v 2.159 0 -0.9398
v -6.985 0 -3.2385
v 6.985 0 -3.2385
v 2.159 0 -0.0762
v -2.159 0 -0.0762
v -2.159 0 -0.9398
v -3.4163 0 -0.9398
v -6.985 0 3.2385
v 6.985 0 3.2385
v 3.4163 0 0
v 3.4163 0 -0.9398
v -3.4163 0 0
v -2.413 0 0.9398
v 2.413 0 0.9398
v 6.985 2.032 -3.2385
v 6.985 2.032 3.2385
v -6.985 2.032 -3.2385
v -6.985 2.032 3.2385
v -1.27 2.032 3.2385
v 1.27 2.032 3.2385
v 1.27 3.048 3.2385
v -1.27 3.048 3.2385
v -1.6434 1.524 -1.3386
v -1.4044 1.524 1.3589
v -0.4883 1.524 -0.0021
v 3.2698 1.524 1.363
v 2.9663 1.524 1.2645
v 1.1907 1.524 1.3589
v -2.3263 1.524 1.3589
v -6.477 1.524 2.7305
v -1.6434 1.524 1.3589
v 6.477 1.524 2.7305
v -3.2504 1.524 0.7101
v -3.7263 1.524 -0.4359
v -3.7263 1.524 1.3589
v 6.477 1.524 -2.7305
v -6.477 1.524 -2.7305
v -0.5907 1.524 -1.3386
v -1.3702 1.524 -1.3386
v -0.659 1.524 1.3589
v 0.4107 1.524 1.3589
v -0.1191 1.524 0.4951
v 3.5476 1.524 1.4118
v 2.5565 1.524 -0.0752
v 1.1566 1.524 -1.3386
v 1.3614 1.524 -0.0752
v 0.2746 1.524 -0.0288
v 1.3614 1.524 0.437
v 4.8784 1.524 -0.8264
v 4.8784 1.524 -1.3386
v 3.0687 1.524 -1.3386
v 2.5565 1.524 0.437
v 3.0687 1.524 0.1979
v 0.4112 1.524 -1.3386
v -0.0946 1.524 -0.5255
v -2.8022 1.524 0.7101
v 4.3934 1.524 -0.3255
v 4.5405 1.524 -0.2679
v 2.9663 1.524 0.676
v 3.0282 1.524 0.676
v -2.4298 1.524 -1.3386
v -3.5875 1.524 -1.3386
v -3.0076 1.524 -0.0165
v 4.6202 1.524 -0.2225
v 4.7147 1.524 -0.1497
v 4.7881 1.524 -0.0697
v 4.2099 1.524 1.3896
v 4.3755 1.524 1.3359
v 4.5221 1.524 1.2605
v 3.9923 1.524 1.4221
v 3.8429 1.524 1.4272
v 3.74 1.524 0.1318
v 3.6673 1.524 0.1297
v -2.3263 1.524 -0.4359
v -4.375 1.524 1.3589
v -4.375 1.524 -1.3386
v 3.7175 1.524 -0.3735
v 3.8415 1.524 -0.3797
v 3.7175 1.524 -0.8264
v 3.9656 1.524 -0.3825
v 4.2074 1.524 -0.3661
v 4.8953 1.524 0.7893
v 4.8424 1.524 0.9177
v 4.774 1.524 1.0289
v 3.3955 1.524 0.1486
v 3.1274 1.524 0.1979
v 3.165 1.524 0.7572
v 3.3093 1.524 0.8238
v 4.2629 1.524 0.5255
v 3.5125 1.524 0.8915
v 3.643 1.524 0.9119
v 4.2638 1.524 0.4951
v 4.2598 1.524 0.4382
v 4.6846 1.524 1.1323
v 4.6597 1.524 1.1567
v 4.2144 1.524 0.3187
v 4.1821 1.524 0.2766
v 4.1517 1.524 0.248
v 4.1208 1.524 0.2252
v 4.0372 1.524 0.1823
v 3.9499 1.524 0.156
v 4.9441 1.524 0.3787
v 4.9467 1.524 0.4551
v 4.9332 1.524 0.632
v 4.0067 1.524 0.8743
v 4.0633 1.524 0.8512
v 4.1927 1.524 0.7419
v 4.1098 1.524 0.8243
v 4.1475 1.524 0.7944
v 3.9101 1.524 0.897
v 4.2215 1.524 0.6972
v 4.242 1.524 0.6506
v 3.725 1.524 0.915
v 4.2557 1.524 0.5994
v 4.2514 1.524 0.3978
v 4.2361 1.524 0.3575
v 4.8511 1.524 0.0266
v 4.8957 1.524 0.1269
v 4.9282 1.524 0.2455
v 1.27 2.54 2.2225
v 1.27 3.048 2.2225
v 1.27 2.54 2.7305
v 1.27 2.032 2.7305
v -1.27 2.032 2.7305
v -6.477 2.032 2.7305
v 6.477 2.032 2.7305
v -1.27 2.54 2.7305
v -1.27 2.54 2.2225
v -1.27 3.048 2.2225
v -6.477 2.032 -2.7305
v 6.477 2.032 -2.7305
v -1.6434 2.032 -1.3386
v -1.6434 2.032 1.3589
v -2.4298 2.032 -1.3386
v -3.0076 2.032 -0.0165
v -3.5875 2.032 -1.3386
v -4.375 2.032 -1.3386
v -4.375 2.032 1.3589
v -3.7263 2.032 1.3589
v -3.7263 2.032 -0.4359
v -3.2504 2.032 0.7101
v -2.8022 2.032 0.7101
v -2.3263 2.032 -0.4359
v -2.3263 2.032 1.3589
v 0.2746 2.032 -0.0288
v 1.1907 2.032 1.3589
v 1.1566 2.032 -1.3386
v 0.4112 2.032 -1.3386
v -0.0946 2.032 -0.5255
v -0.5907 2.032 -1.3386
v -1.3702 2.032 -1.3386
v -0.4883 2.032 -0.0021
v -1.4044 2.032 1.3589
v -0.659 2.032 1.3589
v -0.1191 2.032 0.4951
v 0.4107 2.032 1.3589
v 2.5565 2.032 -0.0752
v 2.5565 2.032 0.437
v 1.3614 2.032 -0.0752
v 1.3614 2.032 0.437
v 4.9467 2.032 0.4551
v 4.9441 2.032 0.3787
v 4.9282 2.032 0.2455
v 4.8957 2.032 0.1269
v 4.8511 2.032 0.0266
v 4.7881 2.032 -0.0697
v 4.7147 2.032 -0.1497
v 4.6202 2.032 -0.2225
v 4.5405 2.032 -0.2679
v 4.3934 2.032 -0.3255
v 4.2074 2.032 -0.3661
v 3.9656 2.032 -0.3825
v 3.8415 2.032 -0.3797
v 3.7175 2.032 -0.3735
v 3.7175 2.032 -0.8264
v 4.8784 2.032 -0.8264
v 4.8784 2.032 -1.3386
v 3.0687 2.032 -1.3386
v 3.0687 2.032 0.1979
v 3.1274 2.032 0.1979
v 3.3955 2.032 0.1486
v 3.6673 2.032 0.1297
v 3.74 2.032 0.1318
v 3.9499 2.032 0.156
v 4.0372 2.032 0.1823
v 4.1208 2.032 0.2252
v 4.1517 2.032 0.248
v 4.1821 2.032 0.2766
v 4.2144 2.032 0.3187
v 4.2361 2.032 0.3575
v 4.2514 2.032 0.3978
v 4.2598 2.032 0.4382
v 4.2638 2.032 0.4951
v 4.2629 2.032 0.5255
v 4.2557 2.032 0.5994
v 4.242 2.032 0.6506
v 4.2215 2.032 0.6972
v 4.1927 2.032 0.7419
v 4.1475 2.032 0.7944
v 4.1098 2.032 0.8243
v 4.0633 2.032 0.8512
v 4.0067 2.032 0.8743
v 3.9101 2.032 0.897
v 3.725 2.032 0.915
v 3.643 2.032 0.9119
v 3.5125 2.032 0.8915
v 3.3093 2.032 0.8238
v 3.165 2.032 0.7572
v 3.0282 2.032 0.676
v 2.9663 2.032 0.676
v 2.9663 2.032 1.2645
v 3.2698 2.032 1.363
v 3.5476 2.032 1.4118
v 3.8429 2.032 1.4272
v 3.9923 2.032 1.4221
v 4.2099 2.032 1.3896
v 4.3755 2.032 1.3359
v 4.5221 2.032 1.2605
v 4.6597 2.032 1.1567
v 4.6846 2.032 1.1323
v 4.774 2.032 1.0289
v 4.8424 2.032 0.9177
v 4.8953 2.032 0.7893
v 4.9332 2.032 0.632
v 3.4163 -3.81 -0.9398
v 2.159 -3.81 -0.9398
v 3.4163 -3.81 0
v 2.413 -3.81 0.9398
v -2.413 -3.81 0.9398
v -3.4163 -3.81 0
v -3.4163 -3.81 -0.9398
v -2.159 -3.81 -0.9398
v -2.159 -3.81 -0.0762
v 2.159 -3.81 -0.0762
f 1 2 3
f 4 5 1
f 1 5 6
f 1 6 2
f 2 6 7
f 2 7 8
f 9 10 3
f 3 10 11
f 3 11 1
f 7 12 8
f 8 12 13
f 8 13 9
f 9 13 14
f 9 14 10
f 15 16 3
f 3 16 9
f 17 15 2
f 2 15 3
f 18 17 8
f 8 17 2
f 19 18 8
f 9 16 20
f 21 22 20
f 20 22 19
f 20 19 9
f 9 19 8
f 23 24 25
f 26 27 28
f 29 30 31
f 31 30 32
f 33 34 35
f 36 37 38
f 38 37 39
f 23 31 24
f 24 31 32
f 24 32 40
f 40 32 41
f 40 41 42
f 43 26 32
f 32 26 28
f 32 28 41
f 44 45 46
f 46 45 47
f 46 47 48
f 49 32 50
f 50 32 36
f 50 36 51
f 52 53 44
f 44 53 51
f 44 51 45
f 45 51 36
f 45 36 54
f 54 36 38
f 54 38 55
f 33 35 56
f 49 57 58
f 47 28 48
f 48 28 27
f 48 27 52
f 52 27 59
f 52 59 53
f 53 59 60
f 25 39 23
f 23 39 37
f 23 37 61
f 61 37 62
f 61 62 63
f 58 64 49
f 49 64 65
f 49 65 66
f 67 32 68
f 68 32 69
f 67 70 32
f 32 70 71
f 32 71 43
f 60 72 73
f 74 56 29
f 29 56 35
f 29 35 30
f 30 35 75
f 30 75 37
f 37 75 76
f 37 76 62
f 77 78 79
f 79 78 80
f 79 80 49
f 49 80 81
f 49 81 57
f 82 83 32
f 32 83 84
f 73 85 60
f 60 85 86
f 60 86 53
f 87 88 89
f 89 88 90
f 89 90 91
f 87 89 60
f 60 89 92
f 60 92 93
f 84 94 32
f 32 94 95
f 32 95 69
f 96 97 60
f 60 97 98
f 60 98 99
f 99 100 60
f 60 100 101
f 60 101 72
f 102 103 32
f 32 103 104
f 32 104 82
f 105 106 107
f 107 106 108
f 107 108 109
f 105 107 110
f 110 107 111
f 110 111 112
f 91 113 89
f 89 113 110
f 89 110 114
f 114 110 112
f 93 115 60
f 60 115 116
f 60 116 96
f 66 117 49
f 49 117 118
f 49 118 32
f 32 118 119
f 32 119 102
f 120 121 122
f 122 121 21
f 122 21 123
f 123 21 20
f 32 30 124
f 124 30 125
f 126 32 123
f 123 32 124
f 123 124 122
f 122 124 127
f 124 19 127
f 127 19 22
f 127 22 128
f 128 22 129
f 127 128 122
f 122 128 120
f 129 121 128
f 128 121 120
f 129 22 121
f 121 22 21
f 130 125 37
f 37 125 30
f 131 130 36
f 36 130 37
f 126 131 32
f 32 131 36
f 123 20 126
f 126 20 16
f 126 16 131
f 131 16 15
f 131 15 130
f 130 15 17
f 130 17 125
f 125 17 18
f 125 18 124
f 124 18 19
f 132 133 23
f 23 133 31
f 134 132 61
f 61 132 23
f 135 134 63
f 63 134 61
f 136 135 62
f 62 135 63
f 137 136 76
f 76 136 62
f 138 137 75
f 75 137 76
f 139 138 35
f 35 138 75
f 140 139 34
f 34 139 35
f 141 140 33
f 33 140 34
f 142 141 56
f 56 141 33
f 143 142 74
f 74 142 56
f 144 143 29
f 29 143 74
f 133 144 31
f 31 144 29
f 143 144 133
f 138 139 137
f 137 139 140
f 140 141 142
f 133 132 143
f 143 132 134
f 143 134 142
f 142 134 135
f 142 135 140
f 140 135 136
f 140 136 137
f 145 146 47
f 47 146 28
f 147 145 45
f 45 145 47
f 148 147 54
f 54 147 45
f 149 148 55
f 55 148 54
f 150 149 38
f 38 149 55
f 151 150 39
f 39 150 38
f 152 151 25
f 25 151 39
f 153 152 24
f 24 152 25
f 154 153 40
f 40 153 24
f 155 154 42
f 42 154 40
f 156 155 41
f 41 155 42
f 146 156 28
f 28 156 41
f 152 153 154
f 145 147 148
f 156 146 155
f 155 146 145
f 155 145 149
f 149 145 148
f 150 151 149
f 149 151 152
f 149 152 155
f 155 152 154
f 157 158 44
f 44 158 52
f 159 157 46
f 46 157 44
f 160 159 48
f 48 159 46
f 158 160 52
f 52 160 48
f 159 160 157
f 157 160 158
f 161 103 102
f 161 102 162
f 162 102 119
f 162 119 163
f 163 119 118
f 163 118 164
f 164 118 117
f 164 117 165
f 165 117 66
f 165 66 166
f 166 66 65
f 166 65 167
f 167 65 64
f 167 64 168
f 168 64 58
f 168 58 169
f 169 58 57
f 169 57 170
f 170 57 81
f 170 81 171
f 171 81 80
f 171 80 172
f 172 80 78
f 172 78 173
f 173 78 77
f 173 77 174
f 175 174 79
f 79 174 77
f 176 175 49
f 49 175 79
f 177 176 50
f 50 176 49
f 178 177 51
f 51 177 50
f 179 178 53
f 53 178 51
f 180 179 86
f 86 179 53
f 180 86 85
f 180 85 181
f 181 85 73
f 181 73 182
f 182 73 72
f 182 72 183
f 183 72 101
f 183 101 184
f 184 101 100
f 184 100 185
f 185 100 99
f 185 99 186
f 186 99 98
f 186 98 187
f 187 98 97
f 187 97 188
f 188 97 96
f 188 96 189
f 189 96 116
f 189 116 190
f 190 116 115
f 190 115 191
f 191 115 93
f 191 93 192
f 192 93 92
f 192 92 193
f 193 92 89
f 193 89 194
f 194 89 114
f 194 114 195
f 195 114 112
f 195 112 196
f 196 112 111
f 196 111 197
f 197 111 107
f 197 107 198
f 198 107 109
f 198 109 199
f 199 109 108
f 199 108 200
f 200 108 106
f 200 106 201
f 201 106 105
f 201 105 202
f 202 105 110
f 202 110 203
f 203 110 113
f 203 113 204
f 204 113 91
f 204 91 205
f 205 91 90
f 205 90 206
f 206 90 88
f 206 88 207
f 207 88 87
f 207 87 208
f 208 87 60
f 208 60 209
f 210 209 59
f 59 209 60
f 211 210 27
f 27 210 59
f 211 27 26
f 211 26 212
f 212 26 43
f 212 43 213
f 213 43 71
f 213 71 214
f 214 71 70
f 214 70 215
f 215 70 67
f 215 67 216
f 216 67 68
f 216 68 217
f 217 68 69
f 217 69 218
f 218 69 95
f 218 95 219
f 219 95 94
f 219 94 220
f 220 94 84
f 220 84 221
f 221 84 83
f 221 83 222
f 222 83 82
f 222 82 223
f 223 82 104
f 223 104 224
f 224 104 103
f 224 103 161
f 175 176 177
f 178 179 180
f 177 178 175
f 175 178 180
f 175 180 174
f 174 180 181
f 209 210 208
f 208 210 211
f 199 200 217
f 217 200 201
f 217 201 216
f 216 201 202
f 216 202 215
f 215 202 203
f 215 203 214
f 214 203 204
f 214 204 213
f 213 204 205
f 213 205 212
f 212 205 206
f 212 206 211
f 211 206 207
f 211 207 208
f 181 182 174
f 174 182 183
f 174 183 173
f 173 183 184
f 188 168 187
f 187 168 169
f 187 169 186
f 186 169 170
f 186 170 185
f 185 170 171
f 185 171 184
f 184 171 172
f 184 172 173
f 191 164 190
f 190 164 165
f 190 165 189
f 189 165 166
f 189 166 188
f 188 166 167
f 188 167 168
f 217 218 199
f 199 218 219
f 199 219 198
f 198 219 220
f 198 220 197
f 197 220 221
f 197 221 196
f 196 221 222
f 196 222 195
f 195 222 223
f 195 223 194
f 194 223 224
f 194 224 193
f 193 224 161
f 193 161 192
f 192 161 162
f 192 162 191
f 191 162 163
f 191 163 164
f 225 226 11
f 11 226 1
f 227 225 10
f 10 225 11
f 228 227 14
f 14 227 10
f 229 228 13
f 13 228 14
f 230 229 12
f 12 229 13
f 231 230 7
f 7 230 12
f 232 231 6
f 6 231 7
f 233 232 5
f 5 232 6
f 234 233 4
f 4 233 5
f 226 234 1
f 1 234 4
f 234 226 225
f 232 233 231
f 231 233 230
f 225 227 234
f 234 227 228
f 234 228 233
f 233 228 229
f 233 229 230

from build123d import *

# Parameters (mm, degrees)
SKETCH1_W           = 13.97
SKETCH1_H           = 6.477
BOSS_EXTRUDE1_DEPTH = 1.524
SKETCH2_W           = 2.54
SKETCH2_H           = 0.508
BOSS_EXTRUDE2_DEPTH = 1.016
SKETCH3_W           = 2.54
SKETCH3_H           = 1.016
BOSS_EXTRUDE3_DEPTH = 0.508
BOSS_EXTRUDE4_DEPTH = 0.508
SKETCH5_W           = 1.195099264
SKETCH5_H           = 0.512185399
BOSS_EXTRUDE5_DEPTH = 0.508
BOSS_EXTRUDE6_DEPTH = 3.81


with BuildPart() as part:
    # Sketch1 → Boss-Extrude1 (new body)
    with BuildSketch(Plane(origin=(0, 0, 0), x_dir=(1, 0, 0), z_dir=(0, 1, 0))):
        Rectangle(SKETCH1_W, SKETCH1_H)
    extrude(amount=BOSS_EXTRUDE1_DEPTH)

    # Sketch2 → Boss-Extrude2 (add)
    with BuildSketch(Plane(origin=(0, 1.524, 0), x_dir=(1, 0, 0), z_dir=(0, 1, 0))):
        with Locations((0, -2.9845)):
            Rectangle(SKETCH2_W, SKETCH2_H)
    extrude(amount=BOSS_EXTRUDE2_DEPTH)

    # Sketch3 → Boss-Extrude3 (add)
    with BuildSketch(Plane(origin=(0, 2.54, 0), x_dir=(1, 0, 0), z_dir=(0, 1, 0))):
        with Locations((0, -2.7305)):
            Rectangle(SKETCH3_W, SKETCH3_H)
    extrude(amount=BOSS_EXTRUDE3_DEPTH)

    # Sketch4 → Boss-Extrude4 (add)
    with BuildSketch(Plane(origin=(0, 1.524, 0), x_dir=(1, 0, 0), z_dir=(0, 1, 0))):
        Polygon((-6.477, -2.7305), (-6.477, 2.7305), (6.477, 2.7305), (6.477, -2.7305), (1.27, -2.7305), (1.27, -3.2385), (6.985, -3.2385), (6.985, 3.2385), (-6.985, 3.2385), (-6.985, -3.2385), (-1.27, -3.2385), (-1.27, -2.7305), align=None)
    extrude(amount=BOSS_EXTRUDE4_DEPTH)

    # Sketch5 → Boss-Extrude5 (add)
    with BuildSketch(Plane(origin=(0, 1.524, 0), x_dir=(1, 0, 0), z_dir=(0, 1, 0))):
        Polygon((-1.643378995, -1.3589), (-2.32629286, -1.3589), (-2.32629286, 0.435883001), (-2.802198459, -0.710131829), (-3.250360683, -0.710131829), (-3.726266283, 0.435883001), (-3.726266283, -1.3589), (-4.375034454, -1.3589), (-4.375034454, 1.338609766), (-3.587549404, 1.338609766), (-3.007606145, 0.016531206), (-2.429796993, 1.338609766), (-1.643378995, 1.338609766), align=None)
        Polygon((1.190713543, -1.3589), (0.410697863, -1.3589), (-0.119093908, -0.495120666), (-0.659022682, -1.3589), (-1.404359143, -1.3589), (-0.488294216, 0.002125991), (-1.370213449, 1.338609766), (-0.590731296, 1.338609766), (-0.094551691, 0.525515445), (0.41123139, 1.338609766), (1.15656785, 1.338609766), (0.274648617, 0.028802314), align=None)
        with Locations((1.958991641, -0.180873583)):
            Rectangle(SKETCH5_W, SKETCH5_H)
        with BuildLine():
            add(Edge.make_bspline(
                [(4.946739799, -0.455106182), (4.94605947, -0.489662616), (4.944721084, -0.557644192), (4.929944432, -0.657573198), (4.908066939, -0.753857587), (4.87622275, -0.845773262), (4.83676263, -0.933299855), (4.786314976, -1.014033908), (4.728286007, -1.089798027), (4.682686747, -1.134274984), (4.659702565, -1.156693473)],
                knots=[0, 0, 0, 0, 0.000103592, 0.000203793, 0.000302407, 0.000399423, 0.000495152, 0.000589768, 0.000684431, 0.000780639, 0.000780639, 0.000780639, 0.000780639], degree=3))
            add(Edge.make_bspline(
                [(4.659702565, -1.156693473), (4.635406854, -1.177518935), (4.586634173, -1.219325227), (4.505001964, -1.272541327), (4.417255575, -1.319210004), (4.321943242, -1.358475376), (4.21766177, -1.389721666), (4.102769549, -1.411786565), (3.976570704, -1.42510693), (3.888613592, -1.426478259), (3.84287356, -1.427191386)],
                knots=[0, 0, 0, 0, 9.5912e-05, 0.000192539, 0.000291587, 0.000393737, 0.000501257, 0.00061761, 0.000744227, 0.000881409, 0.000881409, 0.000881409, 0.000881409], degree=3))
            add(Edge.make_bspline(
                [(3.84287356, -1.427191386), (3.794477078, -1.426480894), (3.700952929, -1.425107899), (3.566044943, -1.41446127), (3.441363909, -1.399893023), (3.327411732, -1.377455404), (3.223622789, -1.351832076), (3.129158438, -1.324471539), (3.044025447, -1.296336264), (2.991260446, -1.274703465), (2.966289592, -1.264465817)],
                knots=[0, 0, 0, 0, 0.000145167, 0.00028053, 0.0004058, 0.000521528, 0.000628671, 0.000726434, 0.000816529, 0.000897473, 0.000897473, 0.000897473, 0.000897473], degree=3))
            Line((2.966289592, -1.264465817), (2.966289592, -0.675986135))
            Line((2.966289592, -0.675986135), (3.028178661, -0.675986135))
            add(Edge.make_bspline(
                [(3.028178661, -0.675986135), (3.0461748, -0.686599796), (3.084373728, -0.709128543), (3.133224942, -0.739286447), (3.177777625, -0.764600081), (3.217135707, -0.784178099), (3.261692934, -0.803718246), (3.292967822, -0.816879929), (3.309347103, -0.823772964)],
                knots=[0, 0, 0, 0, 6.2677e-05, 0.00013304, 0.000172217, 0.000216358, 0.000264842, 0.000318154, 0.000318154, 0.000318154, 0.000318154], degree=3))
            add(Edge.make_bspline(
                [(3.309347103, -0.823772964), (3.34138122, -0.83629162), (3.405232789, -0.861244261), (3.487688702, -0.886196407), (3.555852103, -0.901383164), (3.609882629, -0.909220124), (3.666539884, -0.91414204), (3.705213193, -0.91471392), (3.724964213, -0.915005988)],
                knots=[0, 0, 0, 0, 0.000103158, 0.000205619, 0.000258049, 0.000312526, 0.000369283, 0.000428526, 0.000428526, 0.000428526, 0.000428526], degree=3))
            add(Edge.make_bspline(
                [(3.724964213, -0.915005988), (3.742755847, -0.914663026), (3.779288763, -0.913958795), (3.835093925, -0.909188759), (3.892833649, -0.900129367), (3.951474932, -0.889677579), (4.008759587, -0.875016308), (4.060932423, -0.853514292), (4.107961529, -0.827647814), (4.134493655, -0.805366147), (4.147517167, -0.794429009)],
                knots=[0, 0, 0, 0, 5.3377e-05, 0.000109602, 0.000167852, 0.000228648, 0.00028831, 0.000344784, 0.000397592, 0.000448504, 0.000448504, 0.000448504, 0.000448504], degree=3))
            add(Edge.make_bspline(
                [(4.147517167, -0.794429009), (4.164388109, -0.775955433), (4.197780925, -0.73939051), (4.229692696, -0.685066402), (4.247298267, -0.63645426), (4.257736249, -0.594516462), (4.262394262, -0.546619491), (4.263331382, -0.512910261), (4.263825935, -0.495120666)],
                knots=[0, 0, 0, 0, 7.4941e-05, 0.000148331, 0.000186985, 0.000229817, 0.0002776, 0.000330995, 0.000330995, 0.000330995, 0.000330995], degree=3))
            add(Edge.make_bspline(
                [(4.263825935, -0.495120666), (4.263214375, -0.480167371), (4.262020954, -0.450986903), (4.255637945, -0.408563008), (4.242263097, -0.36988429), (4.225355871, -0.334193666), (4.203453064, -0.30241436), (4.179789927, -0.272527925), (4.151721285, -0.246927559), (4.131136036, -0.232414579), (4.120840844, -0.225156279)],
                knots=[0, 0, 0, 0, 4.4896e-05, 8.7611e-05, 0.000128103, 0.000167236, 0.000205709, 0.000243623, 0.00028138, 0.000319155, 0.000319155, 0.000319155, 0.000319155], degree=3))
            add(Edge.make_bspline(
                [(4.120840844, -0.225156279), (4.104707777, -0.21545969), (4.071734836, -0.195641694), (4.016892486, -0.17391933), (3.957698389, -0.156300514), (3.895021078, -0.146296935), (3.832643779, -0.139181726), (3.773581815, -0.133780992), (3.718958649, -0.130345567), (3.684064997, -0.12987875), (3.667343356, -0.129655044)],
                knots=[0, 0, 0, 0, 5.6382e-05, 0.000115235, 0.000176356, 0.000241352, 0.000305279, 0.000364741, 0.000419255, 0.000469417, 0.000469417, 0.000469417, 0.000469417], degree=3))
            add(Edge.make_bspline(
                [(3.667343356, -0.129655044), (3.617843369, -0.130527073), (3.519806509, -0.132254165), (3.39941227, -0.147583805), (3.307040027, -0.161526065), (3.242965144, -0.173689398), (3.18341676, -0.184924031), (3.145528801, -0.193734262), (3.127414582, -0.19794643)],
                knots=[0, 0, 0, 0, 0.000148416, 0.000293945, 0.000363592, 0.000428682, 0.000489579, 0.000545365, 0.000545365, 0.000545365, 0.000545365], degree=3))
            Line((3.127414582, -0.19794643), (3.068726671, -0.19794643))
            Line((3.068726671, -0.19794643), (3.068726671, 1.338609766))
            Line((3.068726671, 1.338609766), (4.878448413, 1.338609766))
            Line((4.878448413, 1.338609766), (4.878448413, 0.826424367))
            Line((4.878448413, 0.826424367), (3.717494843, 0.826424367))
            Line((3.717494843, 0.826424367), (3.717494843, 0.373460405))
            add(Edge.make_bspline(
                [(3.717494843, 0.373460405), (3.737585525, 0.374808914), (3.780939543, 0.377718884), (3.836285807, 0.379582643), (3.882002433, 0.380815422), (3.913647804, 0.38204891), (3.941040243, 0.382621495), (3.957937284, 0.382558752), (3.965584645, 0.382530355)],
                knots=[0, 0, 0, 0, 6.0404e-05, 0.000130347, 0.000166109, 0.000197605, 0.000225354, 0.000248295, 0.000248295, 0.000248295, 0.000248295], degree=3))
            add(Edge.make_bspline(
                [(3.965584645, 0.382530355), (3.997606389, 0.381939784), (4.060302129, 0.380783498), (4.152627332, 0.374010631), (4.24113585, 0.361615555), (4.326092456, 0.344887486), (4.40663311, 0.322371742), (4.482865869, 0.295381841), (4.554235733, 0.262433225), (4.598396472, 0.235689641), (4.620221608, 0.222472418)],
                knots=[0, 0, 0, 0, 9.6072e-05, 0.0001881, 0.000277512, 0.000364043, 0.000447664, 0.000528163, 0.000606453, 0.000682954, 0.000682954, 0.000682954, 0.000682954], degree=3))
            add(Edge.make_bspline(
                [(4.620221608, 0.222472418), (4.64515183, 0.205211361), (4.6948374, 0.170810326), (4.759231976, 0.10669888), (4.816173661, 0.035295495), (4.863168477, -0.045457051), (4.900760282, -0.134880977), (4.928000594, -0.233413985), (4.943911899, -0.341302226), (4.945775058, -0.416281835), (4.946739799, -0.455106182)],
                knots=[0, 0, 0, 0, 9.0809e-05, 0.000180982, 0.000271389, 0.000364173, 0.000460291, 0.000561647, 0.000670074, 0.000786505, 0.000786505, 0.000786505, 0.000786505], degree=3))
        make_face()
    extrude(amount=BOSS_EXTRUDE5_DEPTH)

    # Sketch6 → Boss-Extrude6 (add)
    with BuildSketch(Plane.XZ):
        Polygon((-3.4163, 0), (-2.413, 0.9398), (2.413, 0.9398), (3.4163, 0), (3.4163, -0.9398), (2.159, -0.9398), (2.159, -0.0762), (-2.159, -0.0762), (-2.159, -0.9398), (-3.4163, -0.9398), align=None)
    extrude(amount=BOSS_EXTRUDE6_DEPTH)


solid = part.part
